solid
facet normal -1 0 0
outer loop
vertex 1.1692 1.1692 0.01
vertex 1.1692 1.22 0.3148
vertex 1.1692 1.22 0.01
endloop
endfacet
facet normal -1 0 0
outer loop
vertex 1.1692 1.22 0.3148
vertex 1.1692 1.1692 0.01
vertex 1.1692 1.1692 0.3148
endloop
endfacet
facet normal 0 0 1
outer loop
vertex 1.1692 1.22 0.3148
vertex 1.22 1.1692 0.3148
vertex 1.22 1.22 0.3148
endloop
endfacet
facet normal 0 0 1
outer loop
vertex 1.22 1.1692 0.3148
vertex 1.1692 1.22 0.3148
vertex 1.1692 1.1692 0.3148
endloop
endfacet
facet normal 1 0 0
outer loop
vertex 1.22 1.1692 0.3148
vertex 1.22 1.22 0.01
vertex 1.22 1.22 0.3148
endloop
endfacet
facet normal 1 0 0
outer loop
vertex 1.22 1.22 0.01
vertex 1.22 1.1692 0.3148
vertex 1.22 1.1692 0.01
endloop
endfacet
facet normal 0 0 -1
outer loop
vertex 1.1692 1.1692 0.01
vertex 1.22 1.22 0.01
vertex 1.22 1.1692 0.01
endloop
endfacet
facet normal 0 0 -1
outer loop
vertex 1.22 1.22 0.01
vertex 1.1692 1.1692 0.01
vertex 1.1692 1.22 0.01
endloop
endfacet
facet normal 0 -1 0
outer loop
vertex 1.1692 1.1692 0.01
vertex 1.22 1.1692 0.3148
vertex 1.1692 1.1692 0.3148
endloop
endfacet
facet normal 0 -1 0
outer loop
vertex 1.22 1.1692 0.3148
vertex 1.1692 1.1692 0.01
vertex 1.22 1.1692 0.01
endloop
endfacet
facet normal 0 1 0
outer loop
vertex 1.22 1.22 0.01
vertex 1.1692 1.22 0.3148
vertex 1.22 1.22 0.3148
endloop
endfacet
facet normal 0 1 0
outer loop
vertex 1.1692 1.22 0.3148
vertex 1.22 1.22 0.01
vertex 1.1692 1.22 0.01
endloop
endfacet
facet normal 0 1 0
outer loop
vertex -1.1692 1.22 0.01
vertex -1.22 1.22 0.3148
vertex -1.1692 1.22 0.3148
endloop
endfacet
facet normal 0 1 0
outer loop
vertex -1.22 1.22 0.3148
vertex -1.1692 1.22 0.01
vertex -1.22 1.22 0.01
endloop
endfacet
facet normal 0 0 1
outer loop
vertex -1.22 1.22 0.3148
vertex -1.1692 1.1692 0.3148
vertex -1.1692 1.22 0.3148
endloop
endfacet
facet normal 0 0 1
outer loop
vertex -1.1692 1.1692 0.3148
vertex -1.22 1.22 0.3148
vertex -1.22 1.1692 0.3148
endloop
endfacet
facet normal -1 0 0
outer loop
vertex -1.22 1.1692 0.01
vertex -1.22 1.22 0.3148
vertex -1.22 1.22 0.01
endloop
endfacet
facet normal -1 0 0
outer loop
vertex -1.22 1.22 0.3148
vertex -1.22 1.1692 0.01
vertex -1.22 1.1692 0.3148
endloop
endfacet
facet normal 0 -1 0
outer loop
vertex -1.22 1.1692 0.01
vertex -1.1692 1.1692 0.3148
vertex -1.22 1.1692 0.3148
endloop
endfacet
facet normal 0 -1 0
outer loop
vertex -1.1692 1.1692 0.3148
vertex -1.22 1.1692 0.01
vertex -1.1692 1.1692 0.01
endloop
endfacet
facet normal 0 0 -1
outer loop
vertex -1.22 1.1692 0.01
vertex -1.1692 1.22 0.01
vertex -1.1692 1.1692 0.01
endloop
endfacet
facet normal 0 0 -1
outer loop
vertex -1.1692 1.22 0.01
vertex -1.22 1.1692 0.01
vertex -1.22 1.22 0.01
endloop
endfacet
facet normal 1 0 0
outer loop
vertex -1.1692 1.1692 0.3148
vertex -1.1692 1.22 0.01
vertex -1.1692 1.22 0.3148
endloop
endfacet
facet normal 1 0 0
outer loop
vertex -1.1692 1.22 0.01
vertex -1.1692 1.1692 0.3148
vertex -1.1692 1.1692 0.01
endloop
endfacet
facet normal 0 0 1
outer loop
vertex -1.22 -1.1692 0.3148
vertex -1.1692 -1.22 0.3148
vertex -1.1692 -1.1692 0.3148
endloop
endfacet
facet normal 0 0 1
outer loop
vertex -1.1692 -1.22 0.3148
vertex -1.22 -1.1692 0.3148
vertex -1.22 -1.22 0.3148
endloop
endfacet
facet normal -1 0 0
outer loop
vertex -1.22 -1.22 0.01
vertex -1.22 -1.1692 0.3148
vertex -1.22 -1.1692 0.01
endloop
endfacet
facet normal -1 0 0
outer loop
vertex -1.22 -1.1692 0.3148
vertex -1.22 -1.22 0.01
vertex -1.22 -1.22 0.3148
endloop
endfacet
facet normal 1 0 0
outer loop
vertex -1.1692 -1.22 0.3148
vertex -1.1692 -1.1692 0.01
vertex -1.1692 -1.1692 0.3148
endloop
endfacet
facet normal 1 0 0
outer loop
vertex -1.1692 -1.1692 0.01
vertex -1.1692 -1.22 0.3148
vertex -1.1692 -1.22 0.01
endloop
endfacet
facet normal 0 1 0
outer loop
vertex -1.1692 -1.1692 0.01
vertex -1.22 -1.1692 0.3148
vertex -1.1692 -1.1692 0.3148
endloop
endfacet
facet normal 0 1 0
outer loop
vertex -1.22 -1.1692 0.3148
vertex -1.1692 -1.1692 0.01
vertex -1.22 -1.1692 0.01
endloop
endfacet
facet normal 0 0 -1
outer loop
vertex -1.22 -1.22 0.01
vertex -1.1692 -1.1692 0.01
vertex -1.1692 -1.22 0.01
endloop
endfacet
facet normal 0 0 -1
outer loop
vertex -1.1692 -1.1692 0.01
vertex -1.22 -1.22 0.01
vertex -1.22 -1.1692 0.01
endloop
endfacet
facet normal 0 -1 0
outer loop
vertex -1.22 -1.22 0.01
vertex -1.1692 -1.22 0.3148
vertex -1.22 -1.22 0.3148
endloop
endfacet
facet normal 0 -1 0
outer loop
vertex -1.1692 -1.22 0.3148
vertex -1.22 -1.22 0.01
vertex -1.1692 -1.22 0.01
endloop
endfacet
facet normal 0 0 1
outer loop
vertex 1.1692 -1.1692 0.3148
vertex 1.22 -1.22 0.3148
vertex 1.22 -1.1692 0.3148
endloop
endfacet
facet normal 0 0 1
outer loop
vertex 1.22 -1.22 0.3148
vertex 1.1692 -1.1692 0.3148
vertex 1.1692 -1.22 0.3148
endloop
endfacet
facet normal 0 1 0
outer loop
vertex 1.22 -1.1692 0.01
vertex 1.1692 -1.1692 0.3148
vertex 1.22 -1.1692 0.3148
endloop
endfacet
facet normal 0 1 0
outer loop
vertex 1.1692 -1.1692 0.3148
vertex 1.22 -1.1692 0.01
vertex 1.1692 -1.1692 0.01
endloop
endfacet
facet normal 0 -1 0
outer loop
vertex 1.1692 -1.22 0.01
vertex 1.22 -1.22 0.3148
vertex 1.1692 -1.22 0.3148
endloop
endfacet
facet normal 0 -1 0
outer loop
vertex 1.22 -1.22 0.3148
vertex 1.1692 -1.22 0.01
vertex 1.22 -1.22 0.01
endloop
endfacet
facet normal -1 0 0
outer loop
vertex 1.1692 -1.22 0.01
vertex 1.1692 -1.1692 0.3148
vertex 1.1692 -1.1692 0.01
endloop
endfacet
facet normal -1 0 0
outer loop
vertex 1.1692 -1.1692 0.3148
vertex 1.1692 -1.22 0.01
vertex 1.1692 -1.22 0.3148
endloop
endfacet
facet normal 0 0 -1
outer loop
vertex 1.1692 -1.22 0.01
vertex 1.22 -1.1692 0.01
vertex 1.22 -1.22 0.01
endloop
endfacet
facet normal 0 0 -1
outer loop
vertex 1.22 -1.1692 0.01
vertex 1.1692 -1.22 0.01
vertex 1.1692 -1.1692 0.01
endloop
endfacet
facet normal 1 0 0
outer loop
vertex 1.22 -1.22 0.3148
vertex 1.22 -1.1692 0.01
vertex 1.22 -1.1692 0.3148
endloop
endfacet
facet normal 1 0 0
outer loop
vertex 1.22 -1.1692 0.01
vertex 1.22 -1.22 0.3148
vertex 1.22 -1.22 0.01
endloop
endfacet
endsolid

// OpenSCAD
widthI = 2.44;
depthI = 2.44;

cornerW = 5.08/100;
cornerD = 5.08/100;
cornerH = 30.48/100;

translate([0,0,cornerH/2+1/100]){
   for (i=[0:3]){ 
        rotate([0,0,i*90]){
            translate([widthI/2-cornerW/2,depthI/2-cornerD/2,0]){
                cube([cornerW,cornerD,cornerH],true);
            }
        }
    }
}
